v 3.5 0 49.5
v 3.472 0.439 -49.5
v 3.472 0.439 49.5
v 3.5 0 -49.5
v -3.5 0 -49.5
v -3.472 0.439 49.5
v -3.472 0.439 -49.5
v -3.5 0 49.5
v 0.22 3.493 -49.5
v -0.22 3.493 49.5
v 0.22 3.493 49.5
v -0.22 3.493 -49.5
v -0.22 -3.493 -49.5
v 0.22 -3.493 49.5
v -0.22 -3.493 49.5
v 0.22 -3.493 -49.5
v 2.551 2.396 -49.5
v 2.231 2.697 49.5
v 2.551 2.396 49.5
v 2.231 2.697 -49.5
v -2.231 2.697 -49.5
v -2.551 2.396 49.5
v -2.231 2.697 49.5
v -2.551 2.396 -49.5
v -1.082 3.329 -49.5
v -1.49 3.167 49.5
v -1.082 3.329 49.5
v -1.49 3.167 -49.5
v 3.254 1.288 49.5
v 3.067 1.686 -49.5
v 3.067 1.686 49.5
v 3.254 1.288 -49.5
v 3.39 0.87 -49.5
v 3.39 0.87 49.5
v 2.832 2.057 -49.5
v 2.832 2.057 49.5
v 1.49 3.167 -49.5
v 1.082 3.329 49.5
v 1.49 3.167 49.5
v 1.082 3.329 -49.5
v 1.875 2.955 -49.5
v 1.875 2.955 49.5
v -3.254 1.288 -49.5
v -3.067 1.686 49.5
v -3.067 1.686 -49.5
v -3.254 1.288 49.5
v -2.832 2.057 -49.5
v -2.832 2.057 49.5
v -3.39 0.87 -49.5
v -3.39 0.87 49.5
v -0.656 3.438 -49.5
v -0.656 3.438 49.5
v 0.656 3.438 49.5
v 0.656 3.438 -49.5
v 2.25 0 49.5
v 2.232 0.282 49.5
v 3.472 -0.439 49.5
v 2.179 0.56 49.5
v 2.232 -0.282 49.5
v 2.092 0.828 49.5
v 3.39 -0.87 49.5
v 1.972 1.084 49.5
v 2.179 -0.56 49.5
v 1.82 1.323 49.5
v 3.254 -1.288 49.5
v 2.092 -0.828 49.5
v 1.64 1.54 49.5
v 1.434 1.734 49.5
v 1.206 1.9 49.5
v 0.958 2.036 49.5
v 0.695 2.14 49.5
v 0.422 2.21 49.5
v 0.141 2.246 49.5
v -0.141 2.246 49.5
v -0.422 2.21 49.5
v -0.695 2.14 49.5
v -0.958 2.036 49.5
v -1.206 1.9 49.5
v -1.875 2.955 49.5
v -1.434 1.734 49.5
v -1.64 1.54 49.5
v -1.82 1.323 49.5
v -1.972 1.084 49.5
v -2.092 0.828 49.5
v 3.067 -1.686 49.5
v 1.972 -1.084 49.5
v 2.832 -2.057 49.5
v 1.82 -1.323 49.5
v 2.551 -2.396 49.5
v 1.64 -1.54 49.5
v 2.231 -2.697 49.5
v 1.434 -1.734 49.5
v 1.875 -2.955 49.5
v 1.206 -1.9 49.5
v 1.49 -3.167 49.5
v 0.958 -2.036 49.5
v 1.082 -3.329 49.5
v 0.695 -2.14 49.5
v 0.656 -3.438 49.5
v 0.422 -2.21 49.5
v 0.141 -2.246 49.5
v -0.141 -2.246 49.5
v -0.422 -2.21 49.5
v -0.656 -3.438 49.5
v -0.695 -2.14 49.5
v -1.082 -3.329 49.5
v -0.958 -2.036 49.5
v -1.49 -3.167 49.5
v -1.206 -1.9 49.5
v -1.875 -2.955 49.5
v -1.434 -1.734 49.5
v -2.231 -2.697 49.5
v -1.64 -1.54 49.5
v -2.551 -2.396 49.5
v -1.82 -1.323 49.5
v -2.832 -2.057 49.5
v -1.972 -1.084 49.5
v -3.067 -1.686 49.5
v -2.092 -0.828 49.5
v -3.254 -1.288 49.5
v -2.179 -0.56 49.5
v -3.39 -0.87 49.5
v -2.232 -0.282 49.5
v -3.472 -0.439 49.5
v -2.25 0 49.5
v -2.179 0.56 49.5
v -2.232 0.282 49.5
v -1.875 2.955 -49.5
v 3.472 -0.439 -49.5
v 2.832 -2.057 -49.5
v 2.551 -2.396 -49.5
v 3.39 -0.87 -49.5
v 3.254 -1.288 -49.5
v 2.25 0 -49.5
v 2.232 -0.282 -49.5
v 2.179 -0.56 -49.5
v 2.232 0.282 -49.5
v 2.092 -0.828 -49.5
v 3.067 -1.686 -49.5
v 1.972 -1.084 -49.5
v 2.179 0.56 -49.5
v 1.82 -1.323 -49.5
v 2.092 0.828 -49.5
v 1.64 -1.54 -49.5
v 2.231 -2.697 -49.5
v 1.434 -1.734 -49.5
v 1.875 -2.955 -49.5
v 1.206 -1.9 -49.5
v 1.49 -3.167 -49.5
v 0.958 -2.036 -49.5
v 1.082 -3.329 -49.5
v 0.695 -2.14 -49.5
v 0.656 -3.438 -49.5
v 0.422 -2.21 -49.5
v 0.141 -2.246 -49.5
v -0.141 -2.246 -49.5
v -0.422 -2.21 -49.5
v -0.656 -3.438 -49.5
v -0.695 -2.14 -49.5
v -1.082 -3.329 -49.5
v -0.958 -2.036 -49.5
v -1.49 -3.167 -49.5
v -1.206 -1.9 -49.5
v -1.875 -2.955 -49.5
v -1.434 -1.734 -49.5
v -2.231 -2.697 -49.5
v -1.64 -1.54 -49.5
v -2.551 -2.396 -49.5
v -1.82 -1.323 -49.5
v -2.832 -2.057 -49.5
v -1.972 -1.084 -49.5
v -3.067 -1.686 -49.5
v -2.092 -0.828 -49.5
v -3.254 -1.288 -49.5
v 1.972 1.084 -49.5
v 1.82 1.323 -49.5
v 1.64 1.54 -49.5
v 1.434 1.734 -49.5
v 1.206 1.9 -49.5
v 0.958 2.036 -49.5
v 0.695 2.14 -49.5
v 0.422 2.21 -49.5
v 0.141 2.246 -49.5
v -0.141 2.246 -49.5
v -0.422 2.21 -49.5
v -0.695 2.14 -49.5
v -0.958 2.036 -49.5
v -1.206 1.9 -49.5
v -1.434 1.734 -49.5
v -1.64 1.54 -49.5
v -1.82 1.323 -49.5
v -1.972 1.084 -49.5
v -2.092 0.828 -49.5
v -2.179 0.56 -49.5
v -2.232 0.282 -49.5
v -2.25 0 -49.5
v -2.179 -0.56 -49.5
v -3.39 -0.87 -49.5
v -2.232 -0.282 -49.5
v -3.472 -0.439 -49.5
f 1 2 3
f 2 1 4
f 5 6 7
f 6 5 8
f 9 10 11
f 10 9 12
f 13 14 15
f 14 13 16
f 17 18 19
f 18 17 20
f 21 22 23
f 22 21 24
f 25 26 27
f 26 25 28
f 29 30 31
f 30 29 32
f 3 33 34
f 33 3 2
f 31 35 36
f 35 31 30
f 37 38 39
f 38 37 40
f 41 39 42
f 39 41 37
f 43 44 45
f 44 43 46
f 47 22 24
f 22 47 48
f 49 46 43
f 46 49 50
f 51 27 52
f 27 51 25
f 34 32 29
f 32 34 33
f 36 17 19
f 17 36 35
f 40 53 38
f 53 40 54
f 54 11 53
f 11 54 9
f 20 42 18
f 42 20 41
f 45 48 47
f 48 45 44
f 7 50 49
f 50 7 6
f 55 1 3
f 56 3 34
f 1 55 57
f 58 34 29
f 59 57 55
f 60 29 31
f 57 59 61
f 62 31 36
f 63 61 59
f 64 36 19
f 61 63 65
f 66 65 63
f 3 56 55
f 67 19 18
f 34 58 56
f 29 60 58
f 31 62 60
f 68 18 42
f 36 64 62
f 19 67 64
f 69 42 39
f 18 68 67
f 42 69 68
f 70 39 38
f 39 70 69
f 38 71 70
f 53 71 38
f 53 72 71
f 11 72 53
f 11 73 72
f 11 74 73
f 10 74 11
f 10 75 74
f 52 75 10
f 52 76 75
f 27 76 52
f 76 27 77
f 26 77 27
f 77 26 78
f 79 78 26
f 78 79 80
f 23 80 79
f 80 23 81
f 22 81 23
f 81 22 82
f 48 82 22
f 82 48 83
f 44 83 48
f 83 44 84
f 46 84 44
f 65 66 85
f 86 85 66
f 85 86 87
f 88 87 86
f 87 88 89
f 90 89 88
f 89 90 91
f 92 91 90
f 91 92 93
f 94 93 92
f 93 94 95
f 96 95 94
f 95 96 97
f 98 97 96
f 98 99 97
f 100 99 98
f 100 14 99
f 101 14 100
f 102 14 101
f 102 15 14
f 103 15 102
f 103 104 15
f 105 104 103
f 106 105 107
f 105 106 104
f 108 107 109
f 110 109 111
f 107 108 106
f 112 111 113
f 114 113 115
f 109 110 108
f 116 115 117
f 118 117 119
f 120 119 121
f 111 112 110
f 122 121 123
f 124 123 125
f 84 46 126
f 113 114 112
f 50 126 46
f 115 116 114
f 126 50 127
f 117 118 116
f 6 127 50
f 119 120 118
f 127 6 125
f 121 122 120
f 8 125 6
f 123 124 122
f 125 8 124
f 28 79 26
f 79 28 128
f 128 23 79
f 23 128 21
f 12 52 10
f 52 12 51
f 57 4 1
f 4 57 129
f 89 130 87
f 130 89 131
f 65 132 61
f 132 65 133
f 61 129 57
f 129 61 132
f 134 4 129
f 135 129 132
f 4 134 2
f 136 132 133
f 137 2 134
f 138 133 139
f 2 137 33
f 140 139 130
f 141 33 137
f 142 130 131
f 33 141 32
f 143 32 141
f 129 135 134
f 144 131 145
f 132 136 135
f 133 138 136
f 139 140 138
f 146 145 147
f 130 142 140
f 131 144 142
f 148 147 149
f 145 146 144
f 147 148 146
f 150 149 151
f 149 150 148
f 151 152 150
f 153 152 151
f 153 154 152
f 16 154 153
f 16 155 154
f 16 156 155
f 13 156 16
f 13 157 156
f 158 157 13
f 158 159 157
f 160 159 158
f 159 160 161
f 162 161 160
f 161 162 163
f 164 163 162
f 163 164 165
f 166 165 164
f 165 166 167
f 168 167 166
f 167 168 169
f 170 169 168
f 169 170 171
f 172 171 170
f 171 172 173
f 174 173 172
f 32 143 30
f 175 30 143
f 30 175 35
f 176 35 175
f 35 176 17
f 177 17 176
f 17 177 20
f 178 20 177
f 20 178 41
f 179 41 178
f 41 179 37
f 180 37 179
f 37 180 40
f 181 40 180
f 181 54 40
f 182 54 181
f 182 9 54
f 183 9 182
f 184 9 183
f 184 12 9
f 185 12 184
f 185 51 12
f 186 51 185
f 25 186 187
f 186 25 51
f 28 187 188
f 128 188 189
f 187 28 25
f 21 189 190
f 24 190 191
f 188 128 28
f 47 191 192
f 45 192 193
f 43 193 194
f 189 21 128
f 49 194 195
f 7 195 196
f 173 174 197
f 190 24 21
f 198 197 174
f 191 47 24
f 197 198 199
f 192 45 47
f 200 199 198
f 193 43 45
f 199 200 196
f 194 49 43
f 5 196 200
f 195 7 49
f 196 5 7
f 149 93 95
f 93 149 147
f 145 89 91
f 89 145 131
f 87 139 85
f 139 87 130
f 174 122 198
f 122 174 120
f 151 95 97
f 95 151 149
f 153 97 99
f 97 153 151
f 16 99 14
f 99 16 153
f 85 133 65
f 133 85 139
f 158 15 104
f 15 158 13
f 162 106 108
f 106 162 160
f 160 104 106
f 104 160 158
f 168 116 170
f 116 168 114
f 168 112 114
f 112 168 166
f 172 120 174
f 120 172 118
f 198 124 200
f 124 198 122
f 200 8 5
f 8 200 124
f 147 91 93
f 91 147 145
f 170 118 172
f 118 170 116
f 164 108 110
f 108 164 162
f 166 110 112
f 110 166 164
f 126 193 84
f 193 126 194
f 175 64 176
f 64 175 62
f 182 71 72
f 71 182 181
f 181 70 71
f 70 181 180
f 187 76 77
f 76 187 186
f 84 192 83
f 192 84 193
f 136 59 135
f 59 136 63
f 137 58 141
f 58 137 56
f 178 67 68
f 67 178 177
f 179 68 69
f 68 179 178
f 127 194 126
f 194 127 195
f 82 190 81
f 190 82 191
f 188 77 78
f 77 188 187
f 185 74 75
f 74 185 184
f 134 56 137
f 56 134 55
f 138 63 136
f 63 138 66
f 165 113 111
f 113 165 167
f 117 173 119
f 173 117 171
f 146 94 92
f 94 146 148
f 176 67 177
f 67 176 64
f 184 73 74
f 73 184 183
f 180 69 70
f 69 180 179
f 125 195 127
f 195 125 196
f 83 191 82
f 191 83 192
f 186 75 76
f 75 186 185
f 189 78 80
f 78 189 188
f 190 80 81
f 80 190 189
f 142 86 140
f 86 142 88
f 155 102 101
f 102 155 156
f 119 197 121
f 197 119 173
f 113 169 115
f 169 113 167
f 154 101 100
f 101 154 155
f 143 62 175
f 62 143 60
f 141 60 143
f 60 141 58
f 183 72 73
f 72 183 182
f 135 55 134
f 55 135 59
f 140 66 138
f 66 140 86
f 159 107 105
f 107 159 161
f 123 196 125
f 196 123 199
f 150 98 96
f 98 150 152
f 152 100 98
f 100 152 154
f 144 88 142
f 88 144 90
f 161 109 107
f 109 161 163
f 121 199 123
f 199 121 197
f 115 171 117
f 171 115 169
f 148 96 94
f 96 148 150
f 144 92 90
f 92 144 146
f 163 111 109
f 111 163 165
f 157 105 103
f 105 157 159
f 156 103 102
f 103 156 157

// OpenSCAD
$fn = 50;


difference() {
	union() {
		translate(v = [0, 0, -49.5000000000]) {
			cylinder(h = 99, r = 3.5000000000);
		}
	}
	union() {
		translate(v = [0, 0, -100.0000000000]) {
			cylinder(h = 200, r = 2.2500000000);
		}
	}
}
